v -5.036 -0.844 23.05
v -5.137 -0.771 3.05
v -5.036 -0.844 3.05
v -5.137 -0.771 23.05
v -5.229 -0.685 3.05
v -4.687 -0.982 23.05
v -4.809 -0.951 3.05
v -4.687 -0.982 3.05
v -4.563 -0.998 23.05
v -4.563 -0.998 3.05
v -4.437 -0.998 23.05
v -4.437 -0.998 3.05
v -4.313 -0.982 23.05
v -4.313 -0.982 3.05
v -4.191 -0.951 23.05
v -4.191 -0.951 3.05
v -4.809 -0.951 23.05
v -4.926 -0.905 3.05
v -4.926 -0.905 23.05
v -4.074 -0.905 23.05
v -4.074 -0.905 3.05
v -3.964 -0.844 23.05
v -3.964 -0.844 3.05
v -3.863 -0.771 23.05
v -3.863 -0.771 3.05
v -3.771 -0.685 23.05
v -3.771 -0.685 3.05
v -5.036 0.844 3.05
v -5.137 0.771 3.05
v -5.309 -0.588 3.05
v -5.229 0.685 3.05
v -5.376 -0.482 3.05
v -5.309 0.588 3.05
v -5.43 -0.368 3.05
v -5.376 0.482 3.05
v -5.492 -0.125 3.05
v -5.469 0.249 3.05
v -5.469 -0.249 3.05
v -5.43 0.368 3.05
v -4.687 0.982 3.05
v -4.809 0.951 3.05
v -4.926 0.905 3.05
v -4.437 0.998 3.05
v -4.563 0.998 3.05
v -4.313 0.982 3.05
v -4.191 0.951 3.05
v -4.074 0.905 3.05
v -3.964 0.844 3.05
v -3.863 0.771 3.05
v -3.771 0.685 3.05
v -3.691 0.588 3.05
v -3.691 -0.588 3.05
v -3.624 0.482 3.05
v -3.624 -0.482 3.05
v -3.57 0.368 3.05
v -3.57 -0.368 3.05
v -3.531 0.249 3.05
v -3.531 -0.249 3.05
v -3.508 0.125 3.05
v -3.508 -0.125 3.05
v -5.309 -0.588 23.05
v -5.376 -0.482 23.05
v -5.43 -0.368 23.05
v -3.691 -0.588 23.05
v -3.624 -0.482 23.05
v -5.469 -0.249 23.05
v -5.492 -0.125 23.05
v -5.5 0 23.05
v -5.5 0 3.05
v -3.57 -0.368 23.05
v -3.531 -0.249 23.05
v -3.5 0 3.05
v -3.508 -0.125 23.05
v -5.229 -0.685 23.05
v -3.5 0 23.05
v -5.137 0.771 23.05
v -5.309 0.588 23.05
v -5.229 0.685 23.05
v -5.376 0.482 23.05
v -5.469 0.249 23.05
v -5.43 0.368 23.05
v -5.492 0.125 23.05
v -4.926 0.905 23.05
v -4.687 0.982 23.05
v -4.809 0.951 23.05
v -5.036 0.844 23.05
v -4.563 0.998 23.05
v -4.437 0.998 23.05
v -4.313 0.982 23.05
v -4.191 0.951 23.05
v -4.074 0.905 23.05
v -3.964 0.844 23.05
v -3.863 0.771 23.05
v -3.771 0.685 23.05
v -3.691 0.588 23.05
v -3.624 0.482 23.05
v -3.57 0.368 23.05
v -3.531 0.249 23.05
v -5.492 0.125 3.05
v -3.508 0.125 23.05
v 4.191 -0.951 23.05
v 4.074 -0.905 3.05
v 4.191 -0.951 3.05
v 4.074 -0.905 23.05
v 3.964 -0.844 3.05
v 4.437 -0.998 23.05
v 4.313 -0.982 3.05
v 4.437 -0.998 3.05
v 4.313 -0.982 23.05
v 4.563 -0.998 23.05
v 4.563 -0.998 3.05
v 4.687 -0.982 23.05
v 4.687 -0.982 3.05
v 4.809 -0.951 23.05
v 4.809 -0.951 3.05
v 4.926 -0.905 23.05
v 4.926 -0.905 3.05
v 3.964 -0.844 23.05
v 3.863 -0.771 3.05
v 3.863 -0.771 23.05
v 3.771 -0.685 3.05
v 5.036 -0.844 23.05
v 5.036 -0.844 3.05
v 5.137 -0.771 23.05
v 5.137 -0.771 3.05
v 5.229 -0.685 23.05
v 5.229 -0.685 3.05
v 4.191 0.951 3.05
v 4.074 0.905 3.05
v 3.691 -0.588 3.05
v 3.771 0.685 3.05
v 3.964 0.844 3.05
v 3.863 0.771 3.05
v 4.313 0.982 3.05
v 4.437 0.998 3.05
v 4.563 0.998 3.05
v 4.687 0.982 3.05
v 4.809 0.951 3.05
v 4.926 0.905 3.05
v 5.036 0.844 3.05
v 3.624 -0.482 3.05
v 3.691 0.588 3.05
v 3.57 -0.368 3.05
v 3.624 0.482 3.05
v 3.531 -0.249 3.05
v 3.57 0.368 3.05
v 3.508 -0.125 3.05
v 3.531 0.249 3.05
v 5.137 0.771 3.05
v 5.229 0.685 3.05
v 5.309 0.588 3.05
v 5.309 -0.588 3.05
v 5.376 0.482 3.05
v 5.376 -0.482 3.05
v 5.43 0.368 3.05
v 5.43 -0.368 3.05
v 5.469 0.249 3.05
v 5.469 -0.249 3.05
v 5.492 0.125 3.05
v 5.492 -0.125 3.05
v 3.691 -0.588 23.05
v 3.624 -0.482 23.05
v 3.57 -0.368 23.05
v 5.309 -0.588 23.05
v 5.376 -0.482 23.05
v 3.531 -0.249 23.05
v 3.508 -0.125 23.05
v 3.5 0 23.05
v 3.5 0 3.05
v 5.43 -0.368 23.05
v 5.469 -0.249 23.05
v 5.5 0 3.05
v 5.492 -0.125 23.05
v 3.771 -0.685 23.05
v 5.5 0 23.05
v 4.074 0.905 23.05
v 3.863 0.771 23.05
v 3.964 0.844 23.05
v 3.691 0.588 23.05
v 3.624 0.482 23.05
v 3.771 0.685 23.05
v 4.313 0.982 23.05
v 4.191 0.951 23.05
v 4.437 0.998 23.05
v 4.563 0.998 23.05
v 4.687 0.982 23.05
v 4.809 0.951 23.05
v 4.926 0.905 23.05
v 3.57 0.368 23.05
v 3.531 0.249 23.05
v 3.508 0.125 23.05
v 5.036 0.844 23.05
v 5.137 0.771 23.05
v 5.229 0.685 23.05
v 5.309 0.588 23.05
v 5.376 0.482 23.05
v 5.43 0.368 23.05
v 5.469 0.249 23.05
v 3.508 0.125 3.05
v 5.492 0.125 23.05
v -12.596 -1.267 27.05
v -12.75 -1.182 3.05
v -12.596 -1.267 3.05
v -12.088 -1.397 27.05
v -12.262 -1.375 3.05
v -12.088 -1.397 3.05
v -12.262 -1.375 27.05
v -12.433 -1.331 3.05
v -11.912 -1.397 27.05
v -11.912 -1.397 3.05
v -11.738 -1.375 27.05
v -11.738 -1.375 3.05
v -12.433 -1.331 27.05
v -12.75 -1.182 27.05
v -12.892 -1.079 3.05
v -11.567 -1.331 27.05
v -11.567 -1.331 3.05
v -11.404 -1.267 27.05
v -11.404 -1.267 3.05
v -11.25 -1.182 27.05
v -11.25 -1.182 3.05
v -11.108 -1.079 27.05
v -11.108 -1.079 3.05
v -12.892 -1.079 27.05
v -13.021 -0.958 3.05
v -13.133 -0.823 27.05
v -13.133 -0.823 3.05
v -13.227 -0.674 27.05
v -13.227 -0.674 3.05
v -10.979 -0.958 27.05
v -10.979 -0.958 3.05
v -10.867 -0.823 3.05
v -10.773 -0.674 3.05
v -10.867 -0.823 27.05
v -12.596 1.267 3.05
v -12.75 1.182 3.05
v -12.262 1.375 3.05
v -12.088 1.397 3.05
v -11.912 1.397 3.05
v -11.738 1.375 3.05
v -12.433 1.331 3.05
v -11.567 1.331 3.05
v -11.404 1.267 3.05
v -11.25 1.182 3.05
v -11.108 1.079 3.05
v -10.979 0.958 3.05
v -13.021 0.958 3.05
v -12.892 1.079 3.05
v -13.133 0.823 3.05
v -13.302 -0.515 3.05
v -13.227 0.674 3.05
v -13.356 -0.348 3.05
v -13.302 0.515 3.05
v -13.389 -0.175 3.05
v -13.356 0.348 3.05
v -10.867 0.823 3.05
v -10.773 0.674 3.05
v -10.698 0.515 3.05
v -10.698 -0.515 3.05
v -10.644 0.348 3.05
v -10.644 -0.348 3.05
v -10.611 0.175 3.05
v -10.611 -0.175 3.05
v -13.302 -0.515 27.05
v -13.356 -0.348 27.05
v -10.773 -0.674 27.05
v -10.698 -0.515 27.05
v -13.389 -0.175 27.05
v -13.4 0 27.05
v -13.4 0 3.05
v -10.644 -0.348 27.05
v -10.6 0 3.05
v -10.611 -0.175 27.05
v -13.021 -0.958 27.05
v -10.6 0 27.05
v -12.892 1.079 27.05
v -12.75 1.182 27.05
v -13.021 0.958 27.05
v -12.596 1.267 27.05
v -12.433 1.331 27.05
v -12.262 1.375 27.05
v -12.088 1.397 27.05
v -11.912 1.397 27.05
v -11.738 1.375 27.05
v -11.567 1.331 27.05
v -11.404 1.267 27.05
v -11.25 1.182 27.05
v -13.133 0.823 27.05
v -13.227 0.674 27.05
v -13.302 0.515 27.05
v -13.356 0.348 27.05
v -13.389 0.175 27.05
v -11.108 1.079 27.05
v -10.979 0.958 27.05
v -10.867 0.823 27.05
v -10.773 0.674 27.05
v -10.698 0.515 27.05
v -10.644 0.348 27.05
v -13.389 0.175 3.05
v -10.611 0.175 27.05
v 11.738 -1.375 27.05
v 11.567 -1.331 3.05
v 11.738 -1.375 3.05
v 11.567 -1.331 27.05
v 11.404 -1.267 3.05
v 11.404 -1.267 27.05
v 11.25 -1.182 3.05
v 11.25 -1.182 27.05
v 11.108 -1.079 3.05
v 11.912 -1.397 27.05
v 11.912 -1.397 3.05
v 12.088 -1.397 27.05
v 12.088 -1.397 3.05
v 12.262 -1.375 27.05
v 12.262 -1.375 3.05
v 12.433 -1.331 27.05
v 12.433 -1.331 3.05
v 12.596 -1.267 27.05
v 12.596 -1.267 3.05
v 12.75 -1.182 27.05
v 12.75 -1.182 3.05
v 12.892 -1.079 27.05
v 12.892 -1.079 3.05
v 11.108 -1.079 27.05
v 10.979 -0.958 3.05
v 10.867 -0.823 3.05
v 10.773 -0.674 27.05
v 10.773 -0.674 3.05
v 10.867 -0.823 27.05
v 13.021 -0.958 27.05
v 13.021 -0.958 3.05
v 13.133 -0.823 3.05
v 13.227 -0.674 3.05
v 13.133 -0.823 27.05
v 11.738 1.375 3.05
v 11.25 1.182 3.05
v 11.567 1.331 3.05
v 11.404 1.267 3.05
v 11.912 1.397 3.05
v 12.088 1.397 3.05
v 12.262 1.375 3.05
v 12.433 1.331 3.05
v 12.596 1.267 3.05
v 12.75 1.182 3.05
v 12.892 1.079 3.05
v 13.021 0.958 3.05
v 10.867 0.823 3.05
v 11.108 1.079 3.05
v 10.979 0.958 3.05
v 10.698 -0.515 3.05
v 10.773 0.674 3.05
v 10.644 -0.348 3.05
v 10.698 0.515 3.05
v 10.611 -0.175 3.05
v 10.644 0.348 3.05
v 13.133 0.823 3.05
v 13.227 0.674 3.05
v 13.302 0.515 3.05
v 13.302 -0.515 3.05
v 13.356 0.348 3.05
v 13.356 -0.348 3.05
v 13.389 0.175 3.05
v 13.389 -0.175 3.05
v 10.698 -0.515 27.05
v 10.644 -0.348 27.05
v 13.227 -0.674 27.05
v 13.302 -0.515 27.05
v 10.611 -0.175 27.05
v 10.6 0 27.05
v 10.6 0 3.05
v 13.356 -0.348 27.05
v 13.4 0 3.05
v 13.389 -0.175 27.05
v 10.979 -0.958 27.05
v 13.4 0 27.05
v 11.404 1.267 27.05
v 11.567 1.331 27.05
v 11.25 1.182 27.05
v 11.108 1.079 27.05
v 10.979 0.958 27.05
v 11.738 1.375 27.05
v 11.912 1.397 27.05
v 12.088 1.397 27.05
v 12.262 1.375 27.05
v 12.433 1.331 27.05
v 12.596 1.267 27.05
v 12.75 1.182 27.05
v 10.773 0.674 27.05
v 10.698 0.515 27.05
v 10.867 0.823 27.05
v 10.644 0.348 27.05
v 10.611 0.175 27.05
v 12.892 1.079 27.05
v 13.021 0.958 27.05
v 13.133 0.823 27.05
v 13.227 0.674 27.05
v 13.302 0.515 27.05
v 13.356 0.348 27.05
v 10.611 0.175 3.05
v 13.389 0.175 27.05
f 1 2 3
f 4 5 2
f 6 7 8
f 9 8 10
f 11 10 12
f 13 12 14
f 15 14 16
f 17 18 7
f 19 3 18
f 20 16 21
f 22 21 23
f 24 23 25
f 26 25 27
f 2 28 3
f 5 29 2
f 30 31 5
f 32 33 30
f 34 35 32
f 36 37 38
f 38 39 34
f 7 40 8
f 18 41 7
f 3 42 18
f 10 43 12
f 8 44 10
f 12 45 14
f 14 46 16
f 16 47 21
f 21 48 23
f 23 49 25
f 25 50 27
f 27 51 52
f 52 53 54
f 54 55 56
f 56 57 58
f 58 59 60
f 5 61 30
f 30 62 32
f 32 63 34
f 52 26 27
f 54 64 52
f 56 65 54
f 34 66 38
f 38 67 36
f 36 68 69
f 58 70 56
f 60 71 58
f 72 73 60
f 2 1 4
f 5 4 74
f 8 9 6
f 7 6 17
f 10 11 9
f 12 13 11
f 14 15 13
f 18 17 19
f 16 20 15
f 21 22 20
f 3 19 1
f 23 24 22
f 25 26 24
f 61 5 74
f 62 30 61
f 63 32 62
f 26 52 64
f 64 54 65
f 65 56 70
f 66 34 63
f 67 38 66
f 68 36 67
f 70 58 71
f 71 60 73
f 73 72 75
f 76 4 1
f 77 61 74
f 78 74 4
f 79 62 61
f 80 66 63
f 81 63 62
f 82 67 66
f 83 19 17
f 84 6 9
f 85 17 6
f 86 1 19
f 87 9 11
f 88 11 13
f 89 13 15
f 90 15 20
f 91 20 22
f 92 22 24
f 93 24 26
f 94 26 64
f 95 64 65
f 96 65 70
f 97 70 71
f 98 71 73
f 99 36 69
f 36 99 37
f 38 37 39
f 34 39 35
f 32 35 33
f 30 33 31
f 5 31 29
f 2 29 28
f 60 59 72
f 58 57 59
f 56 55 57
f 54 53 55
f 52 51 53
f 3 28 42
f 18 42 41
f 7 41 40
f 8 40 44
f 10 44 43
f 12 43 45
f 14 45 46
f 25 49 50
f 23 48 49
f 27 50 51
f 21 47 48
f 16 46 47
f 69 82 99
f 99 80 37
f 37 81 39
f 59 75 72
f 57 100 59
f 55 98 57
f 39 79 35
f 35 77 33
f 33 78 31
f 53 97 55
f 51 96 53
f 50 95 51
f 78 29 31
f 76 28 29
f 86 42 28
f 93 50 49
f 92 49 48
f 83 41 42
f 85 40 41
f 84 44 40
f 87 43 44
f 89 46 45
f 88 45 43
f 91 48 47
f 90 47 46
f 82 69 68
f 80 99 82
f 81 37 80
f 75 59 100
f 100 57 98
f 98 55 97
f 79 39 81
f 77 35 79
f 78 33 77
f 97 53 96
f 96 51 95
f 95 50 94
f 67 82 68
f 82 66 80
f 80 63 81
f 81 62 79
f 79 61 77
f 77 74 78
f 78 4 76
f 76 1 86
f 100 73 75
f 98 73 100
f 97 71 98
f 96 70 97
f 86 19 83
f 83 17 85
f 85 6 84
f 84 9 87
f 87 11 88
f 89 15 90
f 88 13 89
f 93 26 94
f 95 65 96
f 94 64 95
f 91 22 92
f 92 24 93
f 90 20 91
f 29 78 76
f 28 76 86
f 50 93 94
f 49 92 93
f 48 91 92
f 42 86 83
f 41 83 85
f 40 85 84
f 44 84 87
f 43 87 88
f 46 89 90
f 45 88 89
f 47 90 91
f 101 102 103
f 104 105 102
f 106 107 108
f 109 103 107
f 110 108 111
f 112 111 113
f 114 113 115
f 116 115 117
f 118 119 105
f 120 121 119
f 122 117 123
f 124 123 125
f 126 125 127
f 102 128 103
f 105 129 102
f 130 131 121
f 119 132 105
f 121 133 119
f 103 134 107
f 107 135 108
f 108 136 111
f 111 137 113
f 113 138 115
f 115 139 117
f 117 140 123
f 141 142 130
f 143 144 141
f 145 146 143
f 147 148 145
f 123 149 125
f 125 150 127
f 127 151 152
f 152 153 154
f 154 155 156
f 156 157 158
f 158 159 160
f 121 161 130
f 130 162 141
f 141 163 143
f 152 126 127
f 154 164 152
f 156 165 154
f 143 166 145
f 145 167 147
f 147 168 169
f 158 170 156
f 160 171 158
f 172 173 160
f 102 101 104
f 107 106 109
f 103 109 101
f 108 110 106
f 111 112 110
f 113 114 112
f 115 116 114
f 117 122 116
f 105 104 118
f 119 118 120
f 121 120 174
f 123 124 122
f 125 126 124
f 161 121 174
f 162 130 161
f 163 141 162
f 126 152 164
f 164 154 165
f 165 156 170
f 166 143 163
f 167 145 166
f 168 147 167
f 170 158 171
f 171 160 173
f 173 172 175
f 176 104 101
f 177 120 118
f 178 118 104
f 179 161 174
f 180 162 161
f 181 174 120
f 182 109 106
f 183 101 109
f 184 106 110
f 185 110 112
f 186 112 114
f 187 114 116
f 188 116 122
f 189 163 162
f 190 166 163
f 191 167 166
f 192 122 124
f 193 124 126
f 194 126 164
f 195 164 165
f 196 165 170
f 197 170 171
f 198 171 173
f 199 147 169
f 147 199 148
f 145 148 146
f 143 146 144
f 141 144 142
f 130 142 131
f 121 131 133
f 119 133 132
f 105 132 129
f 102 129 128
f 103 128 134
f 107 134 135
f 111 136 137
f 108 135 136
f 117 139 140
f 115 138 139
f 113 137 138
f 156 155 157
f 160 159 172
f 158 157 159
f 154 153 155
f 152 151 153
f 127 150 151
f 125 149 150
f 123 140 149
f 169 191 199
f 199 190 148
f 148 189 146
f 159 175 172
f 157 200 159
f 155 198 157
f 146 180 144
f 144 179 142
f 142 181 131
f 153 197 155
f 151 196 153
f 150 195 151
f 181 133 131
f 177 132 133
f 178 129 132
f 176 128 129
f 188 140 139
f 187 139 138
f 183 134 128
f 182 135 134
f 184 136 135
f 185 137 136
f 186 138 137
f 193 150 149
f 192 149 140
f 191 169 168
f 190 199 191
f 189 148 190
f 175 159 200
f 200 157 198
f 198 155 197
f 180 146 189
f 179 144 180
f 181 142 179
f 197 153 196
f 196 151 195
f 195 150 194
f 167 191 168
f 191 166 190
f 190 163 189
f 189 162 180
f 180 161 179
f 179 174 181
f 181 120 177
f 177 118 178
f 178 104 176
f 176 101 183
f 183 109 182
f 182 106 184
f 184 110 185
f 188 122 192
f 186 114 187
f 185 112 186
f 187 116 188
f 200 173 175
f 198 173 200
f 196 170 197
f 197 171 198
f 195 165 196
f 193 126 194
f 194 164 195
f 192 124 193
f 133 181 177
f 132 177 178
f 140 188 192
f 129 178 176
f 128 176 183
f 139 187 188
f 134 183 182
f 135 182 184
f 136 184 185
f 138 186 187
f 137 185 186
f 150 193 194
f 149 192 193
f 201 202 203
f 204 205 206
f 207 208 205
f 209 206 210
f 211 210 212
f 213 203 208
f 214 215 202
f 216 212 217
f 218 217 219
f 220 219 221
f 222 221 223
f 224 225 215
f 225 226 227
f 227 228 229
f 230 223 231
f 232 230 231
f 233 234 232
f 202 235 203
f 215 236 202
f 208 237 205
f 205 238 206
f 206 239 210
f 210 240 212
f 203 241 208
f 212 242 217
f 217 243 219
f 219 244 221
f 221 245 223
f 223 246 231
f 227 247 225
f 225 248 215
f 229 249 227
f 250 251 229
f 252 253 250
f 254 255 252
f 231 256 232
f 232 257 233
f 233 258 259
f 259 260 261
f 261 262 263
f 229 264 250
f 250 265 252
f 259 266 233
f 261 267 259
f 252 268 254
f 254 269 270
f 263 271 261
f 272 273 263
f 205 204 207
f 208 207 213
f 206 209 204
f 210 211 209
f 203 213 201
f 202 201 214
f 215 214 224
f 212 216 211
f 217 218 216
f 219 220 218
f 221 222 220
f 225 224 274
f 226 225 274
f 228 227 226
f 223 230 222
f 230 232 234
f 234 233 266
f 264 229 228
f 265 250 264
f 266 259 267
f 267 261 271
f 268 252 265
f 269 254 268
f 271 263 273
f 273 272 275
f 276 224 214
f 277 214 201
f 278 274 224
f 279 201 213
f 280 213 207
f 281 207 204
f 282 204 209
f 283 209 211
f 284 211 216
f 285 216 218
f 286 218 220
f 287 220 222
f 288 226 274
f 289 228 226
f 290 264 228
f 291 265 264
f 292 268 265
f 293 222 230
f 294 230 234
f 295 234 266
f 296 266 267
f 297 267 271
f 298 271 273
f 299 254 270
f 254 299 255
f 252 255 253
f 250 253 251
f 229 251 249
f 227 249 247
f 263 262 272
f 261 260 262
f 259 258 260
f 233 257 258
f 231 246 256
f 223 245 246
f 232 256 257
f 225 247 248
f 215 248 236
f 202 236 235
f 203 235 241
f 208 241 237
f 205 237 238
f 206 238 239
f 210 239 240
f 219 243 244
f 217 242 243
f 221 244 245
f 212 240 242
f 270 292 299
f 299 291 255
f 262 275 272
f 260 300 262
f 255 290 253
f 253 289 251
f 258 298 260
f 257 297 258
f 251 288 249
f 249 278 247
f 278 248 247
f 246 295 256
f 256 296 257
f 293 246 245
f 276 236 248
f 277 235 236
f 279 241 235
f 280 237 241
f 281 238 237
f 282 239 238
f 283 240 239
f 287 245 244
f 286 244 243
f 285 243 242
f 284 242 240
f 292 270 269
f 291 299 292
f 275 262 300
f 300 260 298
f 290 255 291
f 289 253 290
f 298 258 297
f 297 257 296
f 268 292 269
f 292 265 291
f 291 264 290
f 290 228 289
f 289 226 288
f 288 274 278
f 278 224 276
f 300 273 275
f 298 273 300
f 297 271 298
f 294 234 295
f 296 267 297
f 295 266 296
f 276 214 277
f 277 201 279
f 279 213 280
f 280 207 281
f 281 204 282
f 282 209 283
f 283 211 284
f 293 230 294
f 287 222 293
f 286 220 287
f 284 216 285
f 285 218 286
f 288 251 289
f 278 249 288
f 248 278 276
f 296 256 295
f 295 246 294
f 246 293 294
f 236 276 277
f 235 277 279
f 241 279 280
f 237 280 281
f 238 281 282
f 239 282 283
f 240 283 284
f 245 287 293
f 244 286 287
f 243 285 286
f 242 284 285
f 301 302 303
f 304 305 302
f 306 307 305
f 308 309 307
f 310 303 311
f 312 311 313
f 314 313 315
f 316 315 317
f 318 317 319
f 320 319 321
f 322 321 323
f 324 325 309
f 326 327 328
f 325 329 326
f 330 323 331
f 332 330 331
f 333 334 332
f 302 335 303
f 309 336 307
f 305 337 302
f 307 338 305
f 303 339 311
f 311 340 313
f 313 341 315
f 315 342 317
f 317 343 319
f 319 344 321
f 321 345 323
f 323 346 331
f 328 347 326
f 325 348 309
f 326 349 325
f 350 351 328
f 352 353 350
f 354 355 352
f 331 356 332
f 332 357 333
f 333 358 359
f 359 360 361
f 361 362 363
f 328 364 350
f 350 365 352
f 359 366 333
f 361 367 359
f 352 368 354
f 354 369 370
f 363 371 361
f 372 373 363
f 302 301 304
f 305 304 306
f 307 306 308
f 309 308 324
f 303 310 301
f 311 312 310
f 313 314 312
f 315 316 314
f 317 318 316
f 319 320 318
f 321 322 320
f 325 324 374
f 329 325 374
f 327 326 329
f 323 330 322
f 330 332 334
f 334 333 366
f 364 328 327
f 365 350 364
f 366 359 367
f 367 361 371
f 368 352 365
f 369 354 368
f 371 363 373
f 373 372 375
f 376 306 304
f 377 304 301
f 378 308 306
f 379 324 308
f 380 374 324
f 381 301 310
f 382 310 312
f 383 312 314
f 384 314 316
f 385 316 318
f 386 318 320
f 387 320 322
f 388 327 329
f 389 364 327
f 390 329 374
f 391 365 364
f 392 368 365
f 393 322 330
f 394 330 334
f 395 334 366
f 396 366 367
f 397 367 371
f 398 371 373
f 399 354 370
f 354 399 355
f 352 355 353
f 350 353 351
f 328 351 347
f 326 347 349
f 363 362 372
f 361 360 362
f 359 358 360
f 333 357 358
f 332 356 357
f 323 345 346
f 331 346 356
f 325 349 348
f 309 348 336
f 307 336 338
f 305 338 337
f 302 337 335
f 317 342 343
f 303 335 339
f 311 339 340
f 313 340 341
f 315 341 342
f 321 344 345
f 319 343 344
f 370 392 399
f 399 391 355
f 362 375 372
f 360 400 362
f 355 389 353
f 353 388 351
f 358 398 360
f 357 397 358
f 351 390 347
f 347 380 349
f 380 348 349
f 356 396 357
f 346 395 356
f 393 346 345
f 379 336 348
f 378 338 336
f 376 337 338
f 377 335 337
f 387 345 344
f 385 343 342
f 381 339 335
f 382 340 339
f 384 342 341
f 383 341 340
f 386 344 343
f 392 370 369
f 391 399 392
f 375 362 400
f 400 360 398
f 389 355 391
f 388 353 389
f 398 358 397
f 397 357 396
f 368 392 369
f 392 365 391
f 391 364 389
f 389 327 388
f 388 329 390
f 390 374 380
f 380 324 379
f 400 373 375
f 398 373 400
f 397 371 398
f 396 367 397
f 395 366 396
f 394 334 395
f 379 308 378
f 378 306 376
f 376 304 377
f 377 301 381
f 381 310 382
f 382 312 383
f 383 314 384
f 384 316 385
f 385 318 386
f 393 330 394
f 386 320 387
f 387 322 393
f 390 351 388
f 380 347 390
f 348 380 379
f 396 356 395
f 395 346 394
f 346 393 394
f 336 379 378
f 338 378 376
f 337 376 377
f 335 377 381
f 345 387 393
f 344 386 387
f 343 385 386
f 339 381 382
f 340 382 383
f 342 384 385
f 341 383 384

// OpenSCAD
$fn = 50;

difference() {
	union() {
		translate(v = [-4.5, 0, 3.05]) {
			cylinder(h = 20, r = 1);
		}
		translate(v = [4.5, 0, 3.05]) {
			cylinder(h = 20, r = 1);
		}
		translate(v = [-12, 0, 3.0500000000000007]) {
			cylinder(h = 24, r = 1.4);
		}
		translate(v = [12, 0, 3.0500000000000007]) {
			cylinder(h = 24, r = 1.4);
		}
	}
	union();
}
